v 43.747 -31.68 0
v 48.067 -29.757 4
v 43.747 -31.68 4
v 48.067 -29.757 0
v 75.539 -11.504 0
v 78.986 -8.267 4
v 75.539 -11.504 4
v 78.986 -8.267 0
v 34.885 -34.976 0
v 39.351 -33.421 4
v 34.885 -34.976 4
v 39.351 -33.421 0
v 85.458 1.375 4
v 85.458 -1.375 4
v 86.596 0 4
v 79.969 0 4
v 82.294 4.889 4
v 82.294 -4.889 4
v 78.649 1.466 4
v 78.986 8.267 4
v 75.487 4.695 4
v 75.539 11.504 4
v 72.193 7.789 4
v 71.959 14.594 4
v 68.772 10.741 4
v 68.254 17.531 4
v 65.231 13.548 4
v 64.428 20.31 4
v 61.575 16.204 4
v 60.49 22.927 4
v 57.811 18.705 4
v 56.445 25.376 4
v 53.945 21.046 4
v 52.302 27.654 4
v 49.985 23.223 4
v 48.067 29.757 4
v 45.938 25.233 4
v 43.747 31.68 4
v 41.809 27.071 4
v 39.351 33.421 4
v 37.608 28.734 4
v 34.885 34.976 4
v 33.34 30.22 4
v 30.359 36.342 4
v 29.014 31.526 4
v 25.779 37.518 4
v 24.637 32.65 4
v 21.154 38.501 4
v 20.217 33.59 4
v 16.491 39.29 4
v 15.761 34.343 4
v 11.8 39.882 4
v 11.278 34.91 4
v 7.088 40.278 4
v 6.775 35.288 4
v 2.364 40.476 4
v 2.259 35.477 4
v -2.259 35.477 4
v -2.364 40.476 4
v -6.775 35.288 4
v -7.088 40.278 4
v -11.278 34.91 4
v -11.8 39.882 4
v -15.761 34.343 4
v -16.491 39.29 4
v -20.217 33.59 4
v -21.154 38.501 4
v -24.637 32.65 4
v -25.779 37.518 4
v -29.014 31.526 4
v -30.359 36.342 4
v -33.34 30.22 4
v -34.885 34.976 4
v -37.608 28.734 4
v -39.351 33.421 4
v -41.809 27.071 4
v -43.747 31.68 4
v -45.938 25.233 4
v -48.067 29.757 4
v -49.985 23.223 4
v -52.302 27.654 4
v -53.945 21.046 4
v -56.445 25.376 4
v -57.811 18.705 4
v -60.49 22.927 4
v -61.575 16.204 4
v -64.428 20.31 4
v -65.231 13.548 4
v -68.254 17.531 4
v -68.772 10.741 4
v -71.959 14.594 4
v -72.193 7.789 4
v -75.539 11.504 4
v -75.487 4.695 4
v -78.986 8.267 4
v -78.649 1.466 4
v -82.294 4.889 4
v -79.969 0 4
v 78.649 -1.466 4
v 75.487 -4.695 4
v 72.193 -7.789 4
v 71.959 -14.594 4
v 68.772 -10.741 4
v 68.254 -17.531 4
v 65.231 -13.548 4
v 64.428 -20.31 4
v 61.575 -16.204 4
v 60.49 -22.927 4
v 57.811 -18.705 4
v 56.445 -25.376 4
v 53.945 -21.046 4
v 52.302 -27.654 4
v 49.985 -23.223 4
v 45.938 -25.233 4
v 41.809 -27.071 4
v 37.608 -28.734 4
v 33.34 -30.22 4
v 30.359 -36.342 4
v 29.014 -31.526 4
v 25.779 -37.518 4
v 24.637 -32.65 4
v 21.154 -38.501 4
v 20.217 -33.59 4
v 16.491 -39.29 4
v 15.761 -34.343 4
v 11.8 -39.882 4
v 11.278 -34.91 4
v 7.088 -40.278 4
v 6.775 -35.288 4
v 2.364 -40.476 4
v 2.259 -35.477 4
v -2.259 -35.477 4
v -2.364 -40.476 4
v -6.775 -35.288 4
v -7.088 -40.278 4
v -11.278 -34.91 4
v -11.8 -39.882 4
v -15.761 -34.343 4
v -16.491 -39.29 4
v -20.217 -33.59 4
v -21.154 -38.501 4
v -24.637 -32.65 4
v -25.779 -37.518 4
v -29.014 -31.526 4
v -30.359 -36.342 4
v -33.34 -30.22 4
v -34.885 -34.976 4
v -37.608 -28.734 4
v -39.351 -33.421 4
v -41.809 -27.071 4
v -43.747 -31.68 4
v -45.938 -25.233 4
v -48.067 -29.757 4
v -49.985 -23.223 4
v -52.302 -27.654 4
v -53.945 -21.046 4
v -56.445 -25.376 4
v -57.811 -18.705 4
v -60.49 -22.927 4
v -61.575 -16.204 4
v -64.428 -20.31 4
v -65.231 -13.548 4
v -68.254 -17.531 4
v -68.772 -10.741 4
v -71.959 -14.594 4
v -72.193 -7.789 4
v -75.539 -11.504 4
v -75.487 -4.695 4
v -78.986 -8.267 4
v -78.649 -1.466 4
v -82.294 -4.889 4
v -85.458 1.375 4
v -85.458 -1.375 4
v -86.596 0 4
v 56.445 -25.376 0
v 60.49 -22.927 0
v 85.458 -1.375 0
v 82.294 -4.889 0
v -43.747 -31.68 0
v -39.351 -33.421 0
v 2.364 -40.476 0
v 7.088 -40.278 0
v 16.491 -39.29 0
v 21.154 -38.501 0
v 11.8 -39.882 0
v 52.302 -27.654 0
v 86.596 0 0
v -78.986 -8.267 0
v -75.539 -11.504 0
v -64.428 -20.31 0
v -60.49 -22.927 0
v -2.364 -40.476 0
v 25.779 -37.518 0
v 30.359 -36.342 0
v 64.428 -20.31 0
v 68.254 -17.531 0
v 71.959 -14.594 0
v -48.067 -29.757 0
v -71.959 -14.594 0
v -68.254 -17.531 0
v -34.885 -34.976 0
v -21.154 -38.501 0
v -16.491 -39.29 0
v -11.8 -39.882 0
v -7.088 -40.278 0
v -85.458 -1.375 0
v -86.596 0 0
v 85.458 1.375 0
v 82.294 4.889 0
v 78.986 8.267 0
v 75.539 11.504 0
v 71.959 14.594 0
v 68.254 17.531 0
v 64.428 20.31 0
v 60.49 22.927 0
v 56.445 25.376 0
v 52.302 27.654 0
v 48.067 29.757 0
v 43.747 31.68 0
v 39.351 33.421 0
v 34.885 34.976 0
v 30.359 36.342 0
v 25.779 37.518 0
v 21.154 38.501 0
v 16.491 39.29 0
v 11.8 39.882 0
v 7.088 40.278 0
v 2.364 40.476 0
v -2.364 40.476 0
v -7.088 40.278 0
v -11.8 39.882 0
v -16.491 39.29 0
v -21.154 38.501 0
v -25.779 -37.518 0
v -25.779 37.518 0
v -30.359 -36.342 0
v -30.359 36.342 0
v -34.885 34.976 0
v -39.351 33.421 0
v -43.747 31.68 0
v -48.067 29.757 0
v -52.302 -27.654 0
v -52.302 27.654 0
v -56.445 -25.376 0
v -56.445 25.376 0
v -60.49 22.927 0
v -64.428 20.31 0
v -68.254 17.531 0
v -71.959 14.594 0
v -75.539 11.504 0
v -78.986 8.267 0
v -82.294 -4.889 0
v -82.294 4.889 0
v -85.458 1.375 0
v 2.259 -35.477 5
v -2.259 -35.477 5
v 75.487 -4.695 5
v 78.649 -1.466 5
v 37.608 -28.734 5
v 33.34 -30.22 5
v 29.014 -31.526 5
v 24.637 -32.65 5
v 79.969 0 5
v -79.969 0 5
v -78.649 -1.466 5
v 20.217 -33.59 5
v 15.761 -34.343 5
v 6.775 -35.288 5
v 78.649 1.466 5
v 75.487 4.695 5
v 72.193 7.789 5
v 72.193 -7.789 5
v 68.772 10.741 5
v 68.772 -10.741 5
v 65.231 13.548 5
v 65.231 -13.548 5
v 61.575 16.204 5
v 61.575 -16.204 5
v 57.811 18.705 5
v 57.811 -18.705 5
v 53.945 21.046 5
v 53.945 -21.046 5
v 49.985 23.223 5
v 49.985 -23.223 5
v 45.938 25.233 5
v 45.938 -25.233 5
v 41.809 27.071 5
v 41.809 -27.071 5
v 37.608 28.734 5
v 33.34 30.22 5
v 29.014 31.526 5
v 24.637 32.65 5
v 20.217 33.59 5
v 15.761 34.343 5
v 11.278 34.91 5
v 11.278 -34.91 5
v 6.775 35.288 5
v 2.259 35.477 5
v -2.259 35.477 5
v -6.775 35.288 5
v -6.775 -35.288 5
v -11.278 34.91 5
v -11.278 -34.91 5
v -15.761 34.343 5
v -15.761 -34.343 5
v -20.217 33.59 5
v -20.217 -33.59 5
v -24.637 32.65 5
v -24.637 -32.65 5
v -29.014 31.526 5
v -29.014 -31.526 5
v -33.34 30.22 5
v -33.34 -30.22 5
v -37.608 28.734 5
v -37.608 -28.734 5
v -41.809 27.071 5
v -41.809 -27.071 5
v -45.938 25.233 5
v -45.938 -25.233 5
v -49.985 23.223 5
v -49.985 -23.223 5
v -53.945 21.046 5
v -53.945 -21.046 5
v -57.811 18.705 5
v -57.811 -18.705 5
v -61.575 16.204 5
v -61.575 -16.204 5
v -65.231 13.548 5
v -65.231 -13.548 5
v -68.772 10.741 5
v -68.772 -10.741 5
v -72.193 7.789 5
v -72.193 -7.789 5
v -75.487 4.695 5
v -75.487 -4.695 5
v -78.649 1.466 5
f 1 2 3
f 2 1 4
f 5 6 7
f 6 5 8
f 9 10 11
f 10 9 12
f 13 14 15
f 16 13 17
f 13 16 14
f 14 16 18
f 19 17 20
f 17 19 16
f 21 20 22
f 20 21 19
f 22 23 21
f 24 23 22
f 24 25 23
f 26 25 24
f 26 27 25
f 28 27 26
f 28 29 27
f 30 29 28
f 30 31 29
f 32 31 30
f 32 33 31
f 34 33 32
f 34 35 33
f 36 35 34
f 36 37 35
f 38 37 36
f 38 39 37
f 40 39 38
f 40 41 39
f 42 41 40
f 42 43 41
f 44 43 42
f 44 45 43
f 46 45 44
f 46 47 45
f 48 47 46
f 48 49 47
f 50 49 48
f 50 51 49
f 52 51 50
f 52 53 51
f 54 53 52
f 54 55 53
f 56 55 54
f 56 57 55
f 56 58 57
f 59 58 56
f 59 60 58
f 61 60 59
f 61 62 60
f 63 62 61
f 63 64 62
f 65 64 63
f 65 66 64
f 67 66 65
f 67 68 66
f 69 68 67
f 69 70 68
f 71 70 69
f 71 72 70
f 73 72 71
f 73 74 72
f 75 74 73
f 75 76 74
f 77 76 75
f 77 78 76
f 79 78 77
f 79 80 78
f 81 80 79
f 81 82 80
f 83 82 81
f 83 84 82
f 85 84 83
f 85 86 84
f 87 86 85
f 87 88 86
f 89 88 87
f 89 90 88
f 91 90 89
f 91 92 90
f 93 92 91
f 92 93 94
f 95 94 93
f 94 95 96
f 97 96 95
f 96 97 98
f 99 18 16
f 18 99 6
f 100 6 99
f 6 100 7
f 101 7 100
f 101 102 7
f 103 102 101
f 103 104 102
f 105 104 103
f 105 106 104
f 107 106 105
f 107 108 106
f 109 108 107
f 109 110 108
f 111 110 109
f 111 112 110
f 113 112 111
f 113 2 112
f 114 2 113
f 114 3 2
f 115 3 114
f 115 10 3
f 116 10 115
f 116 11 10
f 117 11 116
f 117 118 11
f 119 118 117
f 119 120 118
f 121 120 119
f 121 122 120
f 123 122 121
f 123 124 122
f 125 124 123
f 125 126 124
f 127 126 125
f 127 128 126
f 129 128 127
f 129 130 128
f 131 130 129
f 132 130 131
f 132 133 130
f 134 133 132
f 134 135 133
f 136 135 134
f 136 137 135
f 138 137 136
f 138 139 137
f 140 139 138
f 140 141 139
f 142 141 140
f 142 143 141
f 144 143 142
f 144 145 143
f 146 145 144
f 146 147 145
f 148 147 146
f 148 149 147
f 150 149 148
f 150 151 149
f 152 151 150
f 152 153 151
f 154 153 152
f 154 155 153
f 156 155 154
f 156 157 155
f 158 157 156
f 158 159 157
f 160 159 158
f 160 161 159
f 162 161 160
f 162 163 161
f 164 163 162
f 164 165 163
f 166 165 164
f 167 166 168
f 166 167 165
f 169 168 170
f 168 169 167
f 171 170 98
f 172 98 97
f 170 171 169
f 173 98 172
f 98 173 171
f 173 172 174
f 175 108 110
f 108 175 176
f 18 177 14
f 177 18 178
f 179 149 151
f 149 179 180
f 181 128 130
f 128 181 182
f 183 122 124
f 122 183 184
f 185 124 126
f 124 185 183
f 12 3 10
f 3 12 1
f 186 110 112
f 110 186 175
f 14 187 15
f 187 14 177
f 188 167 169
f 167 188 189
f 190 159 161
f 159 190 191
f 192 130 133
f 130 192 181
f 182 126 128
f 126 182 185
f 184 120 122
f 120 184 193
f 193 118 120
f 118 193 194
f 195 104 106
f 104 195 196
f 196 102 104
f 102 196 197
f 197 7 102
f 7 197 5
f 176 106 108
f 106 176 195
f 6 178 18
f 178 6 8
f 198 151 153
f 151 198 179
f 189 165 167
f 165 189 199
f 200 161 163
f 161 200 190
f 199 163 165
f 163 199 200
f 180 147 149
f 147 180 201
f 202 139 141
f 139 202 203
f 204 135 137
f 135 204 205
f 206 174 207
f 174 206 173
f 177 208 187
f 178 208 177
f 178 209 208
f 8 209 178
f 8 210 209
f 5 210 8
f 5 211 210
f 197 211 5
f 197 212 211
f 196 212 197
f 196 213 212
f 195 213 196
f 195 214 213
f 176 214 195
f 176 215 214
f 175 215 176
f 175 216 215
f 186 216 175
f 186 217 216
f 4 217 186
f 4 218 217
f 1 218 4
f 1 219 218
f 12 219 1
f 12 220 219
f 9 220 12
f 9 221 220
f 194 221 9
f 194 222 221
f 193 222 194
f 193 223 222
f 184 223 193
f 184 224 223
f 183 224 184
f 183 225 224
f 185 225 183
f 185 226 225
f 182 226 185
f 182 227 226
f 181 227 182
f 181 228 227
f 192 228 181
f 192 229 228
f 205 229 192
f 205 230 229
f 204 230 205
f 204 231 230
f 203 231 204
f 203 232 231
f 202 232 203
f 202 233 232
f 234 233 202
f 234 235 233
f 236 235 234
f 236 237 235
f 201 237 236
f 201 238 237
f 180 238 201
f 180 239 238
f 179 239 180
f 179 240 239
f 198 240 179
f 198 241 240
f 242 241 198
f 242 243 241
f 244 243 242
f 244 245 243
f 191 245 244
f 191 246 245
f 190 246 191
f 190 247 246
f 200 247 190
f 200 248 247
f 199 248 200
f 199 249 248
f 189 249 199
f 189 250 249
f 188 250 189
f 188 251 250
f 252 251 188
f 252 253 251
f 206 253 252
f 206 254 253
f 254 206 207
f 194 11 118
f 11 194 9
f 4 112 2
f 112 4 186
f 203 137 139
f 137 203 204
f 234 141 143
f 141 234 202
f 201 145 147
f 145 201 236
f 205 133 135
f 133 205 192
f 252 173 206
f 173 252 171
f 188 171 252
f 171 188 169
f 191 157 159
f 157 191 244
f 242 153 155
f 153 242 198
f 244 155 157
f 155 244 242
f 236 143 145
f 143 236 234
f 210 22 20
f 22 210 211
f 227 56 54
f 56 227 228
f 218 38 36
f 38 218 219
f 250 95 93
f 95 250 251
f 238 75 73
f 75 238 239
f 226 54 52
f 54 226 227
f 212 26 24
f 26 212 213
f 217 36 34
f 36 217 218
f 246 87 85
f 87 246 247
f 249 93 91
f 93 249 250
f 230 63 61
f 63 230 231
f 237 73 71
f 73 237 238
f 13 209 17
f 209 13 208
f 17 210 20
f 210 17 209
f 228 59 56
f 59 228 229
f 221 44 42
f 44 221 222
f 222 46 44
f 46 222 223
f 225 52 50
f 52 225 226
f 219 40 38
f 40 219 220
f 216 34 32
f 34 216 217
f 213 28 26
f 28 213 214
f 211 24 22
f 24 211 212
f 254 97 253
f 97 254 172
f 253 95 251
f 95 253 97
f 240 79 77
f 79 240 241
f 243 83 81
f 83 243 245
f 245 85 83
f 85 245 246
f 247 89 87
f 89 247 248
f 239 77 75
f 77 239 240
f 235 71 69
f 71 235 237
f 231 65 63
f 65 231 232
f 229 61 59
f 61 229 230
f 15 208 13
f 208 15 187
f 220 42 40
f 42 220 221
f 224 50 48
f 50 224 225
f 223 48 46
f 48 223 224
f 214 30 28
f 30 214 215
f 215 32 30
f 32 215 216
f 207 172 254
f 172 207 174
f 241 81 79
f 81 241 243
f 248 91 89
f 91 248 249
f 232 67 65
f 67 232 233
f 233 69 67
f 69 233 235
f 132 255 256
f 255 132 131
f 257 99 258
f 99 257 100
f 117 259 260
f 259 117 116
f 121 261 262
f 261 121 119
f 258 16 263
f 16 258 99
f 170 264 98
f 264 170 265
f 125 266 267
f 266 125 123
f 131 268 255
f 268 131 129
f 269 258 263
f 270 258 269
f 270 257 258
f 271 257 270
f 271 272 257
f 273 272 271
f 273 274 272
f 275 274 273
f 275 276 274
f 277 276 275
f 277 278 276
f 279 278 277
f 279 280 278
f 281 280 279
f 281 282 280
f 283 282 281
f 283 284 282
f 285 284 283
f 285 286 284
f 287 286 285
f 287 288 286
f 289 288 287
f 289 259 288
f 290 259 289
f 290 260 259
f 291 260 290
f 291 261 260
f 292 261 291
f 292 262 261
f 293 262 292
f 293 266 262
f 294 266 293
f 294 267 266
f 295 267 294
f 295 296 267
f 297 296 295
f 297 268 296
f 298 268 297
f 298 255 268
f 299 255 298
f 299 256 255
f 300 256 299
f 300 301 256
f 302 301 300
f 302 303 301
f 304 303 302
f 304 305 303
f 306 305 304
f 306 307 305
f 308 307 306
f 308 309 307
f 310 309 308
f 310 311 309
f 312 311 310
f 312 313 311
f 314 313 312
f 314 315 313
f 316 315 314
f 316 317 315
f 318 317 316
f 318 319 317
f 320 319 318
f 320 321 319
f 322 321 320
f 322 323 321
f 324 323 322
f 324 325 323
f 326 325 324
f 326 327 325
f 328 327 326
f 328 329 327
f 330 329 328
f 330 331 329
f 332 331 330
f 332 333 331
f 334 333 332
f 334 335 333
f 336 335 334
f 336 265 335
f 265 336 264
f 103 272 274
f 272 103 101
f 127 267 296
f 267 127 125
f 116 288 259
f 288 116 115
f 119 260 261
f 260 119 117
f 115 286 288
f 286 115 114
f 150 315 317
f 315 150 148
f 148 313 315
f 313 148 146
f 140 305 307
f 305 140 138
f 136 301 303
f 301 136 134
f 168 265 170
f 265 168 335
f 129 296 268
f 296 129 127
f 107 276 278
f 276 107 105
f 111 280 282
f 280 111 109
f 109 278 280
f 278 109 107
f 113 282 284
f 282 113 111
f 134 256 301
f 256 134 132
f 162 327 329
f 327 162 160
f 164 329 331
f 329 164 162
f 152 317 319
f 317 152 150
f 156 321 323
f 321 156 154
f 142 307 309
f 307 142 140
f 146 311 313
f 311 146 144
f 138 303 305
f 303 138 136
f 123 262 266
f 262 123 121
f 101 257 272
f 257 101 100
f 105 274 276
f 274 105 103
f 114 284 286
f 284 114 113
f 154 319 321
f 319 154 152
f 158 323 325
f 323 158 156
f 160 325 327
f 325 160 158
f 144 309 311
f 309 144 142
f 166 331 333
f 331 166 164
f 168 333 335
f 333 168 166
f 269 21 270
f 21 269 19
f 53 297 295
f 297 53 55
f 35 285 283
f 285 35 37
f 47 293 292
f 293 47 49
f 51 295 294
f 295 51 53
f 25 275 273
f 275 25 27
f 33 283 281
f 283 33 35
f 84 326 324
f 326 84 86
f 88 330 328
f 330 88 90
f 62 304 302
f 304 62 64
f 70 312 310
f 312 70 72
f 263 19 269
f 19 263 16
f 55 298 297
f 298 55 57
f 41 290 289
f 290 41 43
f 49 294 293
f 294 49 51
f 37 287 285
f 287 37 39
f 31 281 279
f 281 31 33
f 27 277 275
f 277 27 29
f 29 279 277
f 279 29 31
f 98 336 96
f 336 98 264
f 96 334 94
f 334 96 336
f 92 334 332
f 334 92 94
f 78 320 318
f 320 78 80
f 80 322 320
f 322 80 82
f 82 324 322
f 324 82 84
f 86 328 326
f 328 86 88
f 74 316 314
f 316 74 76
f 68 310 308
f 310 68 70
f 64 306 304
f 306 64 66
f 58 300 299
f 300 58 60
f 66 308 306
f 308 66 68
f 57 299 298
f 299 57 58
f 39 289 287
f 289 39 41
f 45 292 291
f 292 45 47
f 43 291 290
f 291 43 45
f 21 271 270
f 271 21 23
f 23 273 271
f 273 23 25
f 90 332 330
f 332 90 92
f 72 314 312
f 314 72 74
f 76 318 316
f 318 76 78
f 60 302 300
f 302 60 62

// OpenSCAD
radius=107.890845;

delta=107.89-71/2;

module leaf() {
  intersection() {
   translate([0,delta,0])
    cylinder(r=radius, h=1, $fn=150);
   translate([0,-delta,0])
    cylinder(r=radius, h=1, $fn=150);
  }
}

module bigleaf() {
  intersection() {
   translate([0,delta,0])
    cylinder(r=radius+5, h=4, $fn=150);
   translate([0,-delta,0])
    cylinder(r=radius+5, h=4, $fn=150);
  }
}

bigleaf();
translate([0,0,4])
  leaf();
